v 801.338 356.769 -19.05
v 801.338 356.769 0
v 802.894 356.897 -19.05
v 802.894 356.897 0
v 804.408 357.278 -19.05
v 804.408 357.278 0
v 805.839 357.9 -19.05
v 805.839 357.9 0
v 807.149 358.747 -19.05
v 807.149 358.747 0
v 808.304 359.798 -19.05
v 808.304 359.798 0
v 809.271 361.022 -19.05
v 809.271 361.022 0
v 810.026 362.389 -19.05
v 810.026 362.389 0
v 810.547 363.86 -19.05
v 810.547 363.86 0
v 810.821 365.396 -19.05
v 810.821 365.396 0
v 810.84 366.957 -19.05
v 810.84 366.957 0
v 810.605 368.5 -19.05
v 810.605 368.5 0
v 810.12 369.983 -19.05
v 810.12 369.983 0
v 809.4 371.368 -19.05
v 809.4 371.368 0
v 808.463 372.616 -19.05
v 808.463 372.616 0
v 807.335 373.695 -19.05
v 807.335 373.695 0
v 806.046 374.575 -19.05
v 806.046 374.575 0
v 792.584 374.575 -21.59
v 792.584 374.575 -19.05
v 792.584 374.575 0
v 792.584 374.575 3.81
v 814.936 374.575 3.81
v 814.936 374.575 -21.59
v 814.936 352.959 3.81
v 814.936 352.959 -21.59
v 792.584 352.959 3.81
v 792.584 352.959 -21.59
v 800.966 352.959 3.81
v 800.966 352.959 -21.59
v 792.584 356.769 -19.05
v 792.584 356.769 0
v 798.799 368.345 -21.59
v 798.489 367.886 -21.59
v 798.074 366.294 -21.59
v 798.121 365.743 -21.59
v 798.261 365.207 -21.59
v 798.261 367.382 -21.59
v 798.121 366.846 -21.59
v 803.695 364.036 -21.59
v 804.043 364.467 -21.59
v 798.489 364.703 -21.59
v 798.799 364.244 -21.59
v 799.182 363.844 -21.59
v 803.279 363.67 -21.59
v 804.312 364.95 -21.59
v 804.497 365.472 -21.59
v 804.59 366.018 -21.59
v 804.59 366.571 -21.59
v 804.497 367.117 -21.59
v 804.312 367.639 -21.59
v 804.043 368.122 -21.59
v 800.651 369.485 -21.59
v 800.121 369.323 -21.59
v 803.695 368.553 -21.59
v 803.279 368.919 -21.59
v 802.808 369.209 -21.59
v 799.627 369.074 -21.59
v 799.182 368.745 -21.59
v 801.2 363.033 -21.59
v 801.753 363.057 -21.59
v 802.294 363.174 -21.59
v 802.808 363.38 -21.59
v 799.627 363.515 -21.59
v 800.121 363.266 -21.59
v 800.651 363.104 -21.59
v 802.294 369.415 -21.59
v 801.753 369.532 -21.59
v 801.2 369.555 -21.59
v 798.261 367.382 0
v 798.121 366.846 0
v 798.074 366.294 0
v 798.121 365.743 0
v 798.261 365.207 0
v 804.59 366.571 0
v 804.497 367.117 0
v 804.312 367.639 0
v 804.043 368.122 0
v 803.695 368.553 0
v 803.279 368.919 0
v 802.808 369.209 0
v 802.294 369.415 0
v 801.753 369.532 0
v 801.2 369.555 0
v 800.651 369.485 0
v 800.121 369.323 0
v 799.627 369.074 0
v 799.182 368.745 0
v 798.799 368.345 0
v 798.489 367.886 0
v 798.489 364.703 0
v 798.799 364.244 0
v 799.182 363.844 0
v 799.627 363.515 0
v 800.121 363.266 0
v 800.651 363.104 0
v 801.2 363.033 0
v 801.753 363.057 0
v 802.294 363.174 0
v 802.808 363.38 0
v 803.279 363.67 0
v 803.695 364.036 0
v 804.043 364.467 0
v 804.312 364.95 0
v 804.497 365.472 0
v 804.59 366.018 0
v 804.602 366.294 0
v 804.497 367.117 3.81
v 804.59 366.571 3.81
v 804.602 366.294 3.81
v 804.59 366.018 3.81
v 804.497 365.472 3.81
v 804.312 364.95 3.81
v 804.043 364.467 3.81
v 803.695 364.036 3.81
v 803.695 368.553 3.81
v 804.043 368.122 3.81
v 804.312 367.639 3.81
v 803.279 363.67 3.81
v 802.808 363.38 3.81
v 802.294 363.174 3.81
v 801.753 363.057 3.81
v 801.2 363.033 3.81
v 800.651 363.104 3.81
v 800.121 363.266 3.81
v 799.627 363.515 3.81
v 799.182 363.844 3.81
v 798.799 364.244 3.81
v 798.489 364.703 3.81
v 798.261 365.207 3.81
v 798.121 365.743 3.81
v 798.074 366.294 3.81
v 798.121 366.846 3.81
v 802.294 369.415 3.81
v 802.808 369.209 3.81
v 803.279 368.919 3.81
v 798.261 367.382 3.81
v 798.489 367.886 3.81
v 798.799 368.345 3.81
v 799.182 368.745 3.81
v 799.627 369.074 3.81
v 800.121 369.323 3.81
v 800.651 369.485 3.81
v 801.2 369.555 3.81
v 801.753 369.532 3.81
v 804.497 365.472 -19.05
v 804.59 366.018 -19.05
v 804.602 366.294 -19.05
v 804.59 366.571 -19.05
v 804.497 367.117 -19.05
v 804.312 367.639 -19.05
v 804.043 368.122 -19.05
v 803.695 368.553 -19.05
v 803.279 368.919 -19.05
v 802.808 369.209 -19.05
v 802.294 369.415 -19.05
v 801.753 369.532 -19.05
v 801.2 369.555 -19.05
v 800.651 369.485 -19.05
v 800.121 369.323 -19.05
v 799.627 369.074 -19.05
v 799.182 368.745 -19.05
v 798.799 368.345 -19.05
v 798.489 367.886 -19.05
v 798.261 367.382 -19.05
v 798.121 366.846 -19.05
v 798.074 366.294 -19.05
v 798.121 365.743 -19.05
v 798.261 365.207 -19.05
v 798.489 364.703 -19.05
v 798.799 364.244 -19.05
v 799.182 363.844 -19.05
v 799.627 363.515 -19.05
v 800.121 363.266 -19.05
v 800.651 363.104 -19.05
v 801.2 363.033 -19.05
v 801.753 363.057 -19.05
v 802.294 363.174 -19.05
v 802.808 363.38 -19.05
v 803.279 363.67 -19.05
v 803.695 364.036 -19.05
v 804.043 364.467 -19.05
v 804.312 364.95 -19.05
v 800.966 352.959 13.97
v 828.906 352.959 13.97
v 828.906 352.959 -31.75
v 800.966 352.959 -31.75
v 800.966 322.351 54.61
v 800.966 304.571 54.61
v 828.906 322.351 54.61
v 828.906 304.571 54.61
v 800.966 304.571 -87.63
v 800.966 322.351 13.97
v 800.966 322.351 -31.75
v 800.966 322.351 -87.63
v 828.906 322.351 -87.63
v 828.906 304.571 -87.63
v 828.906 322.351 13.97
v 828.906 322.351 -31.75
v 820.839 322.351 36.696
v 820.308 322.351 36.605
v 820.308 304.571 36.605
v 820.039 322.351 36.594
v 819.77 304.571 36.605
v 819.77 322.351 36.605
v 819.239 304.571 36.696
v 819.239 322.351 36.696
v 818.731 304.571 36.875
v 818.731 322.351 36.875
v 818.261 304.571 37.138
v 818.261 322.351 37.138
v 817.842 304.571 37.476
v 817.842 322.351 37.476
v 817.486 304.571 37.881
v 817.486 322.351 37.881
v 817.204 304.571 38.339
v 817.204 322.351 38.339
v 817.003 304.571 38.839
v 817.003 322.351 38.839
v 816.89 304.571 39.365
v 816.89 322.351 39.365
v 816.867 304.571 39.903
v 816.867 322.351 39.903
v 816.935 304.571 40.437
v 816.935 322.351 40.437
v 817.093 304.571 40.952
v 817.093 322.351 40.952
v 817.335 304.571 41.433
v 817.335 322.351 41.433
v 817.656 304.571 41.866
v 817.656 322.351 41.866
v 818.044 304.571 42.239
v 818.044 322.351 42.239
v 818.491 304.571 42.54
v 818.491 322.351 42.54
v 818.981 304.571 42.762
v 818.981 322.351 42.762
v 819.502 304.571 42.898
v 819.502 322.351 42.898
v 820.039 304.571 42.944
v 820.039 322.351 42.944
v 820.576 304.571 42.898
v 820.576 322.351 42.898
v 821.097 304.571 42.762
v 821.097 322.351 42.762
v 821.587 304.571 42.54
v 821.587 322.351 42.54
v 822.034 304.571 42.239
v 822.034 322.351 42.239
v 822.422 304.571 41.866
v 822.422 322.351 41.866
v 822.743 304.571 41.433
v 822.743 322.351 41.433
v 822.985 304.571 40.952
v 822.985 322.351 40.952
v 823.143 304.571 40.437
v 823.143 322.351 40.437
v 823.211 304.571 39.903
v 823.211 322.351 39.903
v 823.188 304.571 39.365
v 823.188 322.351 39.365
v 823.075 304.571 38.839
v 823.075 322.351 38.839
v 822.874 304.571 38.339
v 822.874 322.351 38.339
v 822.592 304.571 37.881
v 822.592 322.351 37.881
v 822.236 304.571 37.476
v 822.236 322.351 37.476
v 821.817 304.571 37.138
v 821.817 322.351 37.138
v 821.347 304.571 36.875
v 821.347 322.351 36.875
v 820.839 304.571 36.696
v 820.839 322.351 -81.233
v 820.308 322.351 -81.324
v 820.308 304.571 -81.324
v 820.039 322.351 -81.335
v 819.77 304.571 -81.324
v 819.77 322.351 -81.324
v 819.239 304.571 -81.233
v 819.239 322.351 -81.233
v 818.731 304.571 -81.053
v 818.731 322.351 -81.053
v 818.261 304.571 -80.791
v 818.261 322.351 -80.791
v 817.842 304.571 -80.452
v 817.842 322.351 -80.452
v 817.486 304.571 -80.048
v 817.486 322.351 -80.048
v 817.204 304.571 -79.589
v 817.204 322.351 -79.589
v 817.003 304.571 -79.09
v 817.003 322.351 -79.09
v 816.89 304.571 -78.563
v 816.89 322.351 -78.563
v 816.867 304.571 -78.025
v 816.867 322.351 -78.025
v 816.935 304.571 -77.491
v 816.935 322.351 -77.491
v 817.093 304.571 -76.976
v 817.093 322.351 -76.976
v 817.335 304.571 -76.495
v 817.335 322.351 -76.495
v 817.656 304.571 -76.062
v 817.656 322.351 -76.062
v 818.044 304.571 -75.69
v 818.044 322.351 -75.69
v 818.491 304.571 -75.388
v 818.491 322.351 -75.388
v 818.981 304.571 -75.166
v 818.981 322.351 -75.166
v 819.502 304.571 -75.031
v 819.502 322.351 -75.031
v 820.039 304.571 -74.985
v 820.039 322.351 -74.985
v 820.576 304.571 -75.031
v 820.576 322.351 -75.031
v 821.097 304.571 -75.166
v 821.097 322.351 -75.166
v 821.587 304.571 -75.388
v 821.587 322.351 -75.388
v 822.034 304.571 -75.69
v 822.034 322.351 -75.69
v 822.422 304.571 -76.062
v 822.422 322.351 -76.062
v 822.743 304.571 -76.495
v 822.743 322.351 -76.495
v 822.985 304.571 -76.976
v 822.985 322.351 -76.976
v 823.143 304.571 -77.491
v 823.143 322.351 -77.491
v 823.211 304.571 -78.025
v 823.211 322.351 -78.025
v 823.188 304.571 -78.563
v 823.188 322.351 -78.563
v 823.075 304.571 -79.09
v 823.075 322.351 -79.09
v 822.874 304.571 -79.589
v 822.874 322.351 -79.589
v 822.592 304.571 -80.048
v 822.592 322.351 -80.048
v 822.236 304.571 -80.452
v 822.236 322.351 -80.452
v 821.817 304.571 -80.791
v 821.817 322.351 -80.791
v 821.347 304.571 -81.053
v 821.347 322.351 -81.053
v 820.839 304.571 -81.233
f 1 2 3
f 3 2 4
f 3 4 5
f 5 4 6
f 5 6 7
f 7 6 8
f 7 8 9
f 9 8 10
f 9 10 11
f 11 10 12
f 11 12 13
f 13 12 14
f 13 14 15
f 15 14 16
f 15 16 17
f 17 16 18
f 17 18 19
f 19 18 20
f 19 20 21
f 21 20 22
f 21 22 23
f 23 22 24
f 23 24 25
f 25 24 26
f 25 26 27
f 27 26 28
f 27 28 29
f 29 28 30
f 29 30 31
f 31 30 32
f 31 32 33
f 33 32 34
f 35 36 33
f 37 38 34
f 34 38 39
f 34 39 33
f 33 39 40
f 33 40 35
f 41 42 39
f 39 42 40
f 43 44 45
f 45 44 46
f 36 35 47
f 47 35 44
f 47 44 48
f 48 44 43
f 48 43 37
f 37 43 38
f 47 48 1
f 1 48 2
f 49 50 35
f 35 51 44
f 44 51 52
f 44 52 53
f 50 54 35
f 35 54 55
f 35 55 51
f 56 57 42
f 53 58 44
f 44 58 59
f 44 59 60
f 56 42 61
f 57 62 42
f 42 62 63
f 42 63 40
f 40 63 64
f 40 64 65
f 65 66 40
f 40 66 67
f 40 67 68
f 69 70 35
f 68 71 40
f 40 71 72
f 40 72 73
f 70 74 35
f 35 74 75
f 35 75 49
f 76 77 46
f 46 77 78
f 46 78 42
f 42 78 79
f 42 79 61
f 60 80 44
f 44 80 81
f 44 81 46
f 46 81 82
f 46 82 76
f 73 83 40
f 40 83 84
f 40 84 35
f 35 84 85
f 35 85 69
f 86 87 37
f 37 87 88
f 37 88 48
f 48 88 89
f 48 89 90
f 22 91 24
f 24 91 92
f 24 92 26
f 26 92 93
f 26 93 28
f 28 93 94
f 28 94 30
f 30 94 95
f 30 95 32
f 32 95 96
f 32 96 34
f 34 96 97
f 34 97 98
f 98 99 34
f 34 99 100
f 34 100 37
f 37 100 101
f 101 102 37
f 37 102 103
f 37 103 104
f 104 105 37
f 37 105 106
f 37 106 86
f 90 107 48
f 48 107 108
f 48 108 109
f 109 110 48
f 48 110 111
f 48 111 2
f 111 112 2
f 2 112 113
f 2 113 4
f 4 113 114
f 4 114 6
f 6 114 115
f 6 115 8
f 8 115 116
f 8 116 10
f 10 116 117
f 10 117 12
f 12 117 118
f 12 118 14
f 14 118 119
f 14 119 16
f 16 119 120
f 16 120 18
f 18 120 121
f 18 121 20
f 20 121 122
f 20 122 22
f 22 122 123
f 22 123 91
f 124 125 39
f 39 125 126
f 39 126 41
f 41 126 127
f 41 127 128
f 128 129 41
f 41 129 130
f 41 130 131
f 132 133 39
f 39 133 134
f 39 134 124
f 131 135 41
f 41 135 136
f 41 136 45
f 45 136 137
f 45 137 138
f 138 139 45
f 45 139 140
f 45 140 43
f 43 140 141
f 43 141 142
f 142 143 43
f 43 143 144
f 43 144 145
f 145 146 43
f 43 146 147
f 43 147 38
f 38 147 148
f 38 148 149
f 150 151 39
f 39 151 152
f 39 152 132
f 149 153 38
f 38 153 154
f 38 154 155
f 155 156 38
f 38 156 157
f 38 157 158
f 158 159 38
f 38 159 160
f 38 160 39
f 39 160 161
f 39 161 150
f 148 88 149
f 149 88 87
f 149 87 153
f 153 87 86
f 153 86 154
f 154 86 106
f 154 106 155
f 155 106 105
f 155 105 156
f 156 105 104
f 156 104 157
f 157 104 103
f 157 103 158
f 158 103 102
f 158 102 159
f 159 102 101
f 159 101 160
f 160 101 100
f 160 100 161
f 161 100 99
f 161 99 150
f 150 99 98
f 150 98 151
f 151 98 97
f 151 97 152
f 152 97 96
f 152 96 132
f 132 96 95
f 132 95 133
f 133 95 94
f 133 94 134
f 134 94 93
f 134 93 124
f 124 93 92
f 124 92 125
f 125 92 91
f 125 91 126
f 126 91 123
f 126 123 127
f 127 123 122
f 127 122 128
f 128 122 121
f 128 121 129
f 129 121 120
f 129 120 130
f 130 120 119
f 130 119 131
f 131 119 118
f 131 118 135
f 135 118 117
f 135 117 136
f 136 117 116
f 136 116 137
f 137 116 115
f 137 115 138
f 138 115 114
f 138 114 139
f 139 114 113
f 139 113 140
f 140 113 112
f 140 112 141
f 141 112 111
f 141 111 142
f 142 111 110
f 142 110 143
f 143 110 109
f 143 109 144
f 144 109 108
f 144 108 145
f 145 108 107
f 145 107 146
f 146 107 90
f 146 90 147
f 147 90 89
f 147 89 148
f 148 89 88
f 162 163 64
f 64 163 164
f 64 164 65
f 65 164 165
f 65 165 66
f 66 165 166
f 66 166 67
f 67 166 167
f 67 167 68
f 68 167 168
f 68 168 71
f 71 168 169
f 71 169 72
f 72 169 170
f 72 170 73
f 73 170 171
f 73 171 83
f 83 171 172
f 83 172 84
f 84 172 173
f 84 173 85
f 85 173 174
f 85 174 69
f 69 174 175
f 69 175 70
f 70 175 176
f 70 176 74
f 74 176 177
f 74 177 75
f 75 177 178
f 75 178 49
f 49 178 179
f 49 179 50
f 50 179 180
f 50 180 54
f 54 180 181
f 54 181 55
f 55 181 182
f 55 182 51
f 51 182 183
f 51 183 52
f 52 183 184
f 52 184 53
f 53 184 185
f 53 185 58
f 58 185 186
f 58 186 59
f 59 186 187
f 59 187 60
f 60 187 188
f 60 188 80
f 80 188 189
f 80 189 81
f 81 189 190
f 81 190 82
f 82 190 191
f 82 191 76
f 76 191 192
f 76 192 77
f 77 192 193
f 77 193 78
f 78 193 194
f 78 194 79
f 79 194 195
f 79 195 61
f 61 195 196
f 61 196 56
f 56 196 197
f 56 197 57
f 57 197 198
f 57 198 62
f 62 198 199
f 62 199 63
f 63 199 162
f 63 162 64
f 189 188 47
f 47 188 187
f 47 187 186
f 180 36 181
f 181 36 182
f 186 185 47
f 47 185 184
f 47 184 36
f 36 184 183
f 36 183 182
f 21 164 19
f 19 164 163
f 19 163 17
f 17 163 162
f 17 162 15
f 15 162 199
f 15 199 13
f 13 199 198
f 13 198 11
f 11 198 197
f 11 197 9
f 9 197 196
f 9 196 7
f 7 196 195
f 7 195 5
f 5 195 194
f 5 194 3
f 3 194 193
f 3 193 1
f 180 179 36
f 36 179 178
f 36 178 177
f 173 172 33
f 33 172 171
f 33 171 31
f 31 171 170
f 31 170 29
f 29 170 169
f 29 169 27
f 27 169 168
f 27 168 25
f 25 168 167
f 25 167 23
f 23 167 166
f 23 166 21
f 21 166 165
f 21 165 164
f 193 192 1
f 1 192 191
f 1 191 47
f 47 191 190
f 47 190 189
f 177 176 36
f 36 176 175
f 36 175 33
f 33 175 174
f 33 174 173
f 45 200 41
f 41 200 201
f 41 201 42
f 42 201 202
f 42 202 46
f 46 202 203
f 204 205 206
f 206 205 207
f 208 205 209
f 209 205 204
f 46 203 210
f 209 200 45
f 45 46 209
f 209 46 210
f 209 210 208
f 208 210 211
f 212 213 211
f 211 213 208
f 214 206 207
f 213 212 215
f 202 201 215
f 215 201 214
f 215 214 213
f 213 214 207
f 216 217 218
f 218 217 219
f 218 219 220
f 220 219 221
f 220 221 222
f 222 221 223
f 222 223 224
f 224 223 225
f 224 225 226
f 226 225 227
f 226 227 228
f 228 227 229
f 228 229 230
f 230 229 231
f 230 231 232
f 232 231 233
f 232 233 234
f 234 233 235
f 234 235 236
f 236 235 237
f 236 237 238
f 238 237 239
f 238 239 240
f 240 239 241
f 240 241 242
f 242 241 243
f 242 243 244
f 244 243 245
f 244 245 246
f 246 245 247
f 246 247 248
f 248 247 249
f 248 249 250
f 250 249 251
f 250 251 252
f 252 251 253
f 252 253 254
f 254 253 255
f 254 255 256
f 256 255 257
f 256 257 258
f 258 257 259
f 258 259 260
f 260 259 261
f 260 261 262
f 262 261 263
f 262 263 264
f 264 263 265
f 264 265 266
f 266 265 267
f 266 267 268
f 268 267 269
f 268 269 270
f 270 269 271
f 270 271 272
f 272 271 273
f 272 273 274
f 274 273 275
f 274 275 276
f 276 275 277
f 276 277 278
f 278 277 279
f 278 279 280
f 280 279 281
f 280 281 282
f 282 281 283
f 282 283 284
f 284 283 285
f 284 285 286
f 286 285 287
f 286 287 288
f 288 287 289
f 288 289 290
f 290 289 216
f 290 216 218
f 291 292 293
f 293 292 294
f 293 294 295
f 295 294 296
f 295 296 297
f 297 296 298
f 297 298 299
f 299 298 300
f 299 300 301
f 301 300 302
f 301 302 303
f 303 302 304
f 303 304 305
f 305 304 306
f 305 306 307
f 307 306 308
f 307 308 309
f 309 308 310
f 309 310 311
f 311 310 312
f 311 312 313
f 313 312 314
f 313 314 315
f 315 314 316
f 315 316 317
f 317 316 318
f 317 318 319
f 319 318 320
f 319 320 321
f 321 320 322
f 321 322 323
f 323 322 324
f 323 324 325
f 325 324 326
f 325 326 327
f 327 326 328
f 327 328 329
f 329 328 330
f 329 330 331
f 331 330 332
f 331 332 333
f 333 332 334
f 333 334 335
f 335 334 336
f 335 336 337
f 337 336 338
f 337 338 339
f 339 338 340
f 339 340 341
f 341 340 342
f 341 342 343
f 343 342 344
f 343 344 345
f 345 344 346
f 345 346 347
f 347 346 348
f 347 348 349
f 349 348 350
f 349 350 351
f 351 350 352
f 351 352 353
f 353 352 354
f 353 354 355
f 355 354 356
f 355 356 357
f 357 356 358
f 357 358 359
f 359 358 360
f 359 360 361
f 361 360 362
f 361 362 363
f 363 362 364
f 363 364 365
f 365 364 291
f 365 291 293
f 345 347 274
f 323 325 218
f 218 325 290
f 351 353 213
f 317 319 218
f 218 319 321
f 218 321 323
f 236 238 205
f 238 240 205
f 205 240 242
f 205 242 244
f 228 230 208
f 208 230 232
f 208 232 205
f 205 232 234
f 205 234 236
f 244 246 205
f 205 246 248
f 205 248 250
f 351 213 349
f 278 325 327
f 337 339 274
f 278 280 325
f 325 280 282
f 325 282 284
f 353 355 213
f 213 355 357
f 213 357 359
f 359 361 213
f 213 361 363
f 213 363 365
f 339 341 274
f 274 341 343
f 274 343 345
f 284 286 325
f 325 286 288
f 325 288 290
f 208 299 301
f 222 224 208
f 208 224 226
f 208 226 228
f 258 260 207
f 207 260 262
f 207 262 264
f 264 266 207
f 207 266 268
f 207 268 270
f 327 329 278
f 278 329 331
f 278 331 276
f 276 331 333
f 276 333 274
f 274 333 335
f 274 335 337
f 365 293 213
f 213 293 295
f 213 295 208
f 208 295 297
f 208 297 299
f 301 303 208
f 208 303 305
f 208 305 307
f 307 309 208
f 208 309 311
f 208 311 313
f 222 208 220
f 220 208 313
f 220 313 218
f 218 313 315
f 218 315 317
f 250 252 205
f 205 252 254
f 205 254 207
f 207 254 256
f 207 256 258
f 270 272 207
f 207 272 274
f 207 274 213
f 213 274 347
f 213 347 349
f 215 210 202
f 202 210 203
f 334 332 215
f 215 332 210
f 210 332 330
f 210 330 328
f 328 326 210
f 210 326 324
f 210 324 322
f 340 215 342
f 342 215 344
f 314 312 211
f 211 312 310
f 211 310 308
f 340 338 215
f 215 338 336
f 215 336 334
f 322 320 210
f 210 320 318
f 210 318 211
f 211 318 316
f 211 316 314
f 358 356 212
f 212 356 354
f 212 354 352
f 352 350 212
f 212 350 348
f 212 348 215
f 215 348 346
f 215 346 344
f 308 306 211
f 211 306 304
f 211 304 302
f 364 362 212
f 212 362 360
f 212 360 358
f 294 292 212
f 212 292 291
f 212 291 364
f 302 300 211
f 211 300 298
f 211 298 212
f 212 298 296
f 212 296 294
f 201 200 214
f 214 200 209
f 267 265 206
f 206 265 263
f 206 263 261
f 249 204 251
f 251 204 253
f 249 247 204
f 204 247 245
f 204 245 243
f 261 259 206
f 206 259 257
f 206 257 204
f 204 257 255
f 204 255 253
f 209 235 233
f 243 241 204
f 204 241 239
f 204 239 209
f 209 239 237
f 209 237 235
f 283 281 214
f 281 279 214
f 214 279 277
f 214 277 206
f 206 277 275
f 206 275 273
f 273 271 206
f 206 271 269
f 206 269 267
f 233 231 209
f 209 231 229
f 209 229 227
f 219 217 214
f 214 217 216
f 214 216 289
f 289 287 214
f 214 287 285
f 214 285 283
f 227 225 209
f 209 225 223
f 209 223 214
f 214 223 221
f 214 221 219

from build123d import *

# Parameters (mm, degrees)
BOSS_EXTRUDE1_DEPTH = 21.59
SKETCH2_W           = 22.352
SKETCH2_H           = 21.6154
SKETCH2_R           = 3.2639
BOSS_EXTRUDE2_DEPTH = 3.81
BOSS_EXTRUDE3_START = -2.54
SKETCH3_R           = 3.2639
BOSS_EXTRUDE3_DEPTH = 2.54
SKETCH6_W           = 27.94
SKETCH6_H           = 142.24
SKETCH6_R           = 3.175
BOSS_EXTRUDE4_DEPTH = 48.388036719
SKETCH7_W           = 40.64
SKETCH7_H           = 30.608036719
SKETCH7_W_2         = 55.88
CUT_EXTRUDE1_DEPTH  = 30.226


with BuildPart() as part:
    # Sketch1 → Boss-Extrude1 (new body)
    with BuildSketch(Plane.XY):
        with BuildLine():
            Line((801.338321143, 356.769436719), (792.583825879, 356.769436719))
            Line((792.583825879, 356.769436719), (792.583825879, 352.959436719))
            Line((792.583825879, 352.959436719), (814.935825879, 352.959436719))
            Line((814.935825879, 352.959436719), (814.935825879, 374.574836719))
            Line((814.935825879, 374.574836719), (806.045825879, 374.574836719))
            ThreePointArc((806.045825879, 374.574836719), (810.863321143, 366.294436719), (806.045825879, 358.014036719))
            ThreePointArc((806.045825879, 358.014036719), (803.772947911, 357.085841957), (801.338321143, 356.769436719))
        make_face()
    extrude(amount=-BOSS_EXTRUDE1_DEPTH)

    # Sketch2 → Boss-Extrude2 (add)
    with BuildSketch(Plane.XY):
        with Locations((803.759825879, 363.767136719)):
            Rectangle(SKETCH2_W, SKETCH2_H)
        with Locations((801.338321143, 366.294436719)):
            Circle(SKETCH2_R, mode=Mode.SUBTRACT)
    extrude(amount=BOSS_EXTRUDE2_DEPTH)

    # Sketch3 → Boss-Extrude3 (add)
    with BuildSketch(Plane(origin=(0, 0, -21.59), x_dir=(-1, 0, 0), z_dir=(0, 0, -1)).offset(BOSS_EXTRUDE3_START)):
        with BuildLine():
            Line((-792.583825879, 356.769436719), (-792.583825879, 374.574836719))
            Line((-792.583825879, 374.574836719), (-806.045825879, 374.574836719))
            ThreePointArc((-806.045825879, 374.574836719), (-810.546915906, 363.859809951), (-801.338321143, 356.769436719))
            Line((-801.338321143, 356.769436719), (-792.583825879, 356.769436719))
        make_face()
        with Locations(Location((-801.338321143, 366.294436719, 0), (0, 0, 180))):
            Circle(SKETCH3_R, mode=Mode.SUBTRACT)
    extrude(amount=BOSS_EXTRUDE3_DEPTH)

    # Sketch6 → Boss-Extrude4 (add)
    with BuildSketch(Plane.XZ.offset(-352.959436719)):
        with Locations((814.935825879, -16.51)):
            Rectangle(SKETCH6_W, SKETCH6_H)
        with Locations(Location((820.039, 39.768571429, 0), (0, 0, 90))):
            Circle(SKETCH6_R, mode=Mode.SUBTRACT)
        with Locations(Location((820.039, -78.16, 0), (0, 0, 90))):
            Circle(SKETCH6_R, mode=Mode.SUBTRACT)
    extrude(amount=BOSS_EXTRUDE4_DEPTH)

    # Sketch7 → Cut-Extrude1 (cut)
    with BuildSketch(Plane(origin=(828.905825879, 0, 0), x_dir=(0, 0, -1), z_dir=(1, 0, 0))):
        with Locations((-34.29, 337.65541836)):
            Rectangle(SKETCH7_W, SKETCH7_H)
        with Locations((59.69, 337.65541836)):
            Rectangle(SKETCH7_W_2, SKETCH7_H)
    extrude(amount=-CUT_EXTRUDE1_DEPTH, mode=Mode.SUBTRACT)


solid = part.part
